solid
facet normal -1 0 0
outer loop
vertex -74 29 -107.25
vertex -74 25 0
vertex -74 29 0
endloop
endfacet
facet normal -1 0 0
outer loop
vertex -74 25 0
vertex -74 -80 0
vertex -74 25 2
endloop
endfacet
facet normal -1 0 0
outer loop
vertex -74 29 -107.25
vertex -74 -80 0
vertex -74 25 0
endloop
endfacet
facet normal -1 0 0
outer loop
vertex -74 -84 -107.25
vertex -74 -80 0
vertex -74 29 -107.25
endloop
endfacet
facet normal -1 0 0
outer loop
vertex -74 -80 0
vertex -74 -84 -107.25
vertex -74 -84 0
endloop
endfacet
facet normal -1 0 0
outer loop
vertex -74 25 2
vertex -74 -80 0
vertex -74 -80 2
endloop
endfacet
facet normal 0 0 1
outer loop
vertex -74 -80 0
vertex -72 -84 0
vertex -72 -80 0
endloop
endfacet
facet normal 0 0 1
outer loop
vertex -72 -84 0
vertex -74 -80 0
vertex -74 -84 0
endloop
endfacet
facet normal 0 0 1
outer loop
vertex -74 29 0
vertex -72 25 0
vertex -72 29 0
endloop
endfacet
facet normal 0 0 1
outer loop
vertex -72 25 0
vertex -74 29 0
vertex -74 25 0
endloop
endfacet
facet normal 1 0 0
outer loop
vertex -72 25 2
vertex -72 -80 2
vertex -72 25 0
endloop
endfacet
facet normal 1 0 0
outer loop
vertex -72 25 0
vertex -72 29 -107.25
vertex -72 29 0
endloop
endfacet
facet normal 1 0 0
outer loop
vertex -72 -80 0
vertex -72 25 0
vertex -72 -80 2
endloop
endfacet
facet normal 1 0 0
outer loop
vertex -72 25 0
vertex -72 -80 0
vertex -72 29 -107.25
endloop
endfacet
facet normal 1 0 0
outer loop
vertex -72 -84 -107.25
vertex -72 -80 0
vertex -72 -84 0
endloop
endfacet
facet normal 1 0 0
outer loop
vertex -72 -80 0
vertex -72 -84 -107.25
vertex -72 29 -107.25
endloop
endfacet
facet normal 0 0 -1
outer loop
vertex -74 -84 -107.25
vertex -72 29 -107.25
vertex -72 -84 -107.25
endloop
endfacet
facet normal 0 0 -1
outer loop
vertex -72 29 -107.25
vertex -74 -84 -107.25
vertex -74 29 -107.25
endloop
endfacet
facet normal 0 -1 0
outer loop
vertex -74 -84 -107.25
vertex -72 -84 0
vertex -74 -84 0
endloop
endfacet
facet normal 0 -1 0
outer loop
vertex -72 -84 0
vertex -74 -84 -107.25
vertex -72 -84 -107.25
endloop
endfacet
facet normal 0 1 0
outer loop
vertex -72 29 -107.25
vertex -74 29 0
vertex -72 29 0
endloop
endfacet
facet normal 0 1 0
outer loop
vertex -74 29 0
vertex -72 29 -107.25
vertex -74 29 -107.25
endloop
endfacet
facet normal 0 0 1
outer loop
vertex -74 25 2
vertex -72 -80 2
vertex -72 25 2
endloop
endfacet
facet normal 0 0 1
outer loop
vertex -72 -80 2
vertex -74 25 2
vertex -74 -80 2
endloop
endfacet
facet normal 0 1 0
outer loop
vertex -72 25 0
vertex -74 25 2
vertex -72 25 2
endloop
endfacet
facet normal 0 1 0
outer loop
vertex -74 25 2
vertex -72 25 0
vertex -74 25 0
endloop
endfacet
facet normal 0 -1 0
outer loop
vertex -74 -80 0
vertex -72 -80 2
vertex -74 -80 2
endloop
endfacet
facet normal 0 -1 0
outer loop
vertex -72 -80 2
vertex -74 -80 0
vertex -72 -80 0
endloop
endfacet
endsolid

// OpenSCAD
/*
  Seed imaging system case with experimental collector

  Starting point:
    A simple rectangular base plate for the vacuum/rocking seed imaging system.
*/

$fn = 48;

// Choose what OpenSCAD shows/exports.
part_to_show = "left_side"; // "assembly", "plate", "front", "back", "left_side", "right_side", "sides", "collector", "lower_frame", "bottom"

// Base plate dimensions.
plate_w = 210;      // mm
plate_h = 180;      // mm
plate_thick = 2;    // mm
corner_r = 2;       // mm, just enough to remove sharp corners
wall_slot_clearance = 0.3; // mm extra slot size for sliding wall parts into plate

// Cutout matching the outer tray footprint of the moving funnel adapter.
funnel_cutout_w = 124;       // mm, long side plus clearance for rotation
funnel_cutout_h = 87;        // mm, short side plus clearance for rotation
funnel_front_gap = 20;       // mm from front long edge of plate to cutout
funnel_cutout_r = 2;         // mm, slight radius to avoid sharp internal corners
funnel_cutout_y = -plate_h/2 + funnel_front_gap + funnel_cutout_h/2;

// Front wall for the vacuum adapter interface, hanging down from the top plate.
front_wall_offset_from_cutout = 12; // mm from front edge of cutout toward plate front
front_wall_extra_w = 10;            // mm extension beyond each cutout side
front_wall_w = funnel_cutout_w + 2 * front_wall_extra_w;
front_wall_h = 101.25;              // mm, bottom is 72 mm below front circle center
front_wall_thick = 2;               // mm
front_wall_y = funnel_cutout_y - funnel_cutout_h/2 - front_wall_offset_from_cutout - front_wall_thick;
back_wall_offset_from_cutout = 10;  // mm from back edge of cutout toward plate back
back_wall_y = funnel_cutout_y + funnel_cutout_h/2 + back_wall_offset_from_cutout;
side_wall_thick = front_wall_thick;
side_wall_y = front_wall_y;
side_wall_depth = back_wall_y + front_wall_thick - front_wall_y;

// Circular opening in the front wall for the static funnel-system spout.
static_spout_outer_d = 31.5;       // mm, current static male spout OD
front_wall_spout_clearance = 1;    // mm extra diameter clearance
front_wall_spout_cutout_d = static_spout_outer_d + front_wall_spout_clearance;
front_wall_spout_top_drop = 15;    // mm below top surface of plate
front_wall_spout_center_z = plate_thick - front_wall_spout_top_drop - front_wall_spout_cutout_d/2;
front_wall_tab_margin = 10;      // mm material around circular spout tab
front_wall_tab_x = -front_wall_spout_cutout_d/2 - front_wall_tab_margin;
front_wall_tab_w = front_wall_spout_cutout_d + 2 * front_wall_tab_margin;
front_back_wall_bottom_clearance = 10; // mm below circular cutout bottom
front_back_wall_bottom_z = front_wall_spout_center_z - front_wall_spout_cutout_d/2 - front_back_wall_bottom_clearance;
front_back_wall_h = -front_back_wall_bottom_z;

// Rectangular opening in the back wall, aligned with the spout opening height.
back_wall_rect_cutout_w = 40;   // mm, long horizontal edge
back_wall_rect_cutout_h = 20;   // mm, vertical edge
back_wall_rect_cutout_x_shift = -11; // mm, left shift from spout center
back_wall_notch_size = 7;       // mm square notch centered on right edge
back_wall_notch_overlap = 0.5;  // mm overlap to avoid a zero-width seam
back_wall_tab_margin = 10;      // mm material around motor cutout tab
back_wall_cutout_min_x = back_wall_rect_cutout_x_shift - back_wall_rect_cutout_w/2;
back_wall_cutout_max_x = back_wall_rect_cutout_x_shift + back_wall_rect_cutout_w/2 + back_wall_notch_size;
back_wall_tab_x = back_wall_cutout_min_x - back_wall_tab_margin;
back_wall_tab_w = back_wall_cutout_max_x - back_wall_cutout_min_x + 2 * back_wall_tab_margin;
back_wall_servo_pad_thick = 4;    // mm extra thickness behind servo mount area
back_wall_servo_pad_margin = 6;   // mm material around the motor rectangle cutout
// Experimental lower collector dimensions.
total_system_h = 190;              // mm, target total height from top of plate to floor
floor_z = plate_thick - total_system_h;
upper_wall_bottom_z = -front_wall_h;
collector_drop_h = upper_wall_bottom_z - floor_z;
collector_wall = 2;                // mm wall thickness for chute/outlet
collector_outlet_od = 30;          // mm outer diameter for seed packet interface
collector_outlet_id = collector_outlet_od - 2 * collector_wall;
collector_outlet_len = 24;         // mm, angled tube length; shorter leaves room for the funnel slope
collector_neck_overlap = 8;        // mm overlap into throat so the angled neck and funnel connect solidly
collector_outlet_angle = 135;      // degrees; cylinder axis points 45 degrees down toward the front
collector_floor_clearance = 35;    // mm from floor to lowest outside edge of outlet mouth
collector_outlet_end_z = floor_z + collector_floor_clearance + collector_outlet_od/2;
collector_outlet_start_z = collector_outlet_end_z - collector_outlet_len * cos(collector_outlet_angle);
collector_outlet_start_y = front_wall_y + 28;
collector_outlet_end_y = collector_outlet_start_y - collector_outlet_len * sin(collector_outlet_angle);
collector_top_margin = 3;          // mm inset from inside wall span
collector_post = 8;                // mm square lower frame corner posts
collector_base_rail_h = 8;         // mm height of bottom rails
collector_base_rail_thick = 6;     // mm thickness of bottom rails
collector_lip_h = 4;               // mm thick top lip tying collector mouth into lower posts
collector_lip_overlap_up = 1;      // mm overlap into upper walls for preview/alignment before adding slots
bottom_wall_notch_depth = 6;       // mm deep receiver notch for side walls in the bottom piece
side_wall_h = front_wall_h + bottom_wall_notch_depth; // mm side walls extend into bottom notches
side_wall_top_tab_inset = 4;      // mm shorter at each end to make a shoulder stop under the top plate
front_back_wall_top_tab_inset = 4; // mm shorter at each end for front/back top plate shoulder stops
tray_boundary_wall_thick = 6;     // mm, wider than 2 mm front/back walls for future notches
tray_boundary_wall_h = 6;         // mm small raised boundary at front/back tray edges
tray_boundary_wall_x_margin = 4;  // mm extra length beyond matching front/back wall pieces
tray_boundary_wall_side_inset = side_wall_thick/2 + collector_post/2; // mm keeps rails clear of side walls
front_back_diag_frame_w = 8;      // mm width of trapezoid-frame brace bands
front_back_diag_wall_overlap = 1; // mm overlap so brace merges cleanly into front/back wall
front_back_diag_inner_base_inset = 22; // mm larger values make the inner triangle less obtuse
front_back_diag_end_inset = 14;   // mm keeps brace feet shy of side-wall/funnel corners
front_back_diag_tab_w = 12;       // mm width of rectangular feet that seat in tray-wall notches
front_back_diag_tab_h = tray_boundary_wall_h; // mm foot height matching the tray wall height
front_back_diag_notch_clearance = wall_slot_clearance; // mm extra room around brace feet

// Makes a 2D rounded rectangle profile.
module rounded_rect_2d(w, h, r) {
  offset(r = r)
    square([w - 2*r, h - 2*r], center = true);
}

// Makes the main rectangular base plate with lightly rounded corners.
module base_plate() {
  linear_extrude(height = plate_thick)
    rounded_rect_2d(plate_w, plate_h, corner_r);
}

// Cuts the moving funnel adapter tray footprint through the plate. The long
// side of the cutout runs parallel to the long side of the plate.
module funnel_tray_cutout() {
  translate([0, funnel_cutout_y, -0.5])
    linear_extrude(height = plate_thick + 1)
      rounded_rect_2d(funnel_cutout_w, funnel_cutout_h, funnel_cutout_r);
}

// Cuts the round spout opening through the front wall.
module front_wall_spout_cutout() {
  translate([0, front_wall_y + front_wall_thick/2, front_wall_spout_center_z])
    rotate([90, 0, 0])
      cylinder(h = front_wall_thick + 1, d = front_wall_spout_cutout_d, center = true);
}


// Makes a trapezoid-shaped wall extension with a triangular center opening.
// The two lower rectangular feet seat into matching notches in the tray wall.
module front_back_trapezoid_brace_at(wall_x, wall_w, y, y_thick) {
  top_left = wall_x;
  top_right = wall_x + wall_w;
  foot_left_center = -front_wall_w/2 + front_back_diag_end_inset;
  foot_right_center = front_wall_w/2 - front_back_diag_end_inset;
  foot_left_outer = foot_left_center - front_back_diag_tab_w/2;
  foot_left_inner = foot_left_center + front_back_diag_tab_w/2;
  foot_right_inner = foot_right_center - front_back_diag_tab_w/2;
  foot_right_outer = foot_right_center + front_back_diag_tab_w/2;
  z_top = front_back_wall_bottom_z + front_back_diag_wall_overlap;
  z_bottom = upper_wall_bottom_z;
  z_foot_top = upper_wall_bottom_z + front_back_diag_tab_h;

  translate([0, y + y_thick, 0])
    rotate([90, 0, 0])
      linear_extrude(height = y_thick)
        polygon(points = [
          [top_left, z_top],
          [top_right, z_top],
          [foot_right_outer, z_foot_top],
          [foot_right_outer, z_bottom],
          [foot_left_outer, z_bottom],
          [foot_left_outer, z_foot_top]
        ]);
}
// Makes the front vertical wall below the plate.
module front_wall() {
  front_wall_top_tab_x = front_wall_tab_x + front_back_wall_top_tab_inset;
  front_wall_top_tab_w = front_wall_tab_w - 2 * front_back_wall_top_tab_inset;

  difference() {
    union() {
      translate([front_wall_tab_x, front_wall_y, front_back_wall_bottom_z])
        cube([front_wall_tab_w, front_wall_thick, front_back_wall_h], center = false);
      translate([front_wall_top_tab_x, front_wall_y, 0])
        cube([front_wall_top_tab_w, front_wall_thick, plate_thick], center = false);
      front_back_trapezoid_brace_at(front_wall_tab_x, front_wall_tab_w, front_wall_y, front_wall_thick);
    }
    front_wall_spout_cutout();
  }
}

// Cuts the rectangular opening through the back wall.
module back_wall_rect_cutout() {
  union() {
    translate([back_wall_rect_cutout_x_shift - back_wall_rect_cutout_w/2,
               back_wall_y - 0.5,
               front_wall_spout_center_z - back_wall_rect_cutout_h/2])
      cube([back_wall_rect_cutout_w, front_wall_thick + back_wall_servo_pad_thick + 1, back_wall_rect_cutout_h], center = false);

    translate([back_wall_rect_cutout_x_shift + back_wall_rect_cutout_w/2 - back_wall_notch_overlap,
               back_wall_y - 0.5,
               front_wall_spout_center_z - back_wall_notch_size/2])
      cube([back_wall_notch_size + back_wall_notch_overlap, front_wall_thick + back_wall_servo_pad_thick + 1, back_wall_notch_size], center = false);
  }
}


// Adds localized thickness behind the motor cutout for servo mounting screws.
module back_wall_servo_mount_pad() {
  pad_x = back_wall_tab_x;
  pad_w = back_wall_tab_w;
  pad_z = front_wall_spout_center_z - back_wall_rect_cutout_h/2 - back_wall_servo_pad_margin;
  pad_h = back_wall_rect_cutout_h + 2 * back_wall_servo_pad_margin;

  translate([pad_x, back_wall_y + front_wall_thick, pad_z])
    cube([pad_w, back_wall_servo_pad_thick, pad_h], center = false);
}
// Makes the back vertical wall below the plate, mirrored from the front wall.
module back_wall() {
  back_wall_top_tab_x = back_wall_tab_x + front_back_wall_top_tab_inset;
  back_wall_top_tab_w = back_wall_tab_w - 2 * front_back_wall_top_tab_inset;

  difference() {
    union() {
      translate([back_wall_tab_x, back_wall_y, front_back_wall_bottom_z])
        cube([back_wall_tab_w, front_wall_thick, front_back_wall_h], center = false);
      translate([back_wall_top_tab_x, back_wall_y, 0])
        cube([back_wall_top_tab_w, front_wall_thick, plate_thick], center = false);
      front_back_trapezoid_brace_at(back_wall_tab_x, back_wall_tab_w, back_wall_y, front_wall_thick);
      back_wall_servo_mount_pad();
    }
    back_wall_rect_cutout();
  }
}

// Makes side walls that connect the front and back walls while preserving
// the 144 mm interior span between their inside faces.
module side_wall(side) {
  x = side < 0 ? -front_wall_w/2 - side_wall_thick : front_wall_w/2;
  tab_y = side_wall_y + side_wall_top_tab_inset;
  tab_depth = side_wall_depth - 2 * side_wall_top_tab_inset;

  union() {
    translate([x, side_wall_y, -side_wall_h])
      cube([side_wall_thick, side_wall_depth, side_wall_h], center = false);

    translate([x, tab_y, 0])
      cube([side_wall_thick, tab_depth, plate_thick], center = false);
  }
}

module side_walls() {
  side_wall(-1);
  side_wall(1);
}
// Makes a very thin rectangular face used as the open mouth of the collector chute.
module collector_top_patch(w, d, z) {
  translate([-w/2, side_wall_y + collector_top_margin, z])
    cube([w, d, 0.4], center = false);
}

// Makes a very thin circular face used as the lower throat of the collector chute.
module collector_circle_patch(d, y, z) {
  translate([0, y, z])
    cylinder(h = 0.4, d = d, center = true);
}


// Adds a broad lip at the top of the collector so the funnel clearly rests on the lower posts
// and closes the gap to the original side wall pieces.
module collector_top_lip_outer() {
  lip_x = -front_wall_w/2 - side_wall_thick/2 - collector_post/2;
  lip_y = side_wall_y;
  lip_w = front_wall_w + side_wall_thick + collector_post;
  lip_d = side_wall_depth;

  translate([lip_x, lip_y, upper_wall_bottom_z - collector_lip_h])
    cube([lip_w, lip_d, collector_lip_h + collector_lip_overlap_up], center = false);
}

// Keeps the collector lip open so seeds can drop into the funnel.
module collector_top_lip_void() {
  opening_w = front_wall_w - 2 * collector_wall;
  opening_d = side_wall_depth - 2 * collector_wall;

  translate([-opening_w/2,
             side_wall_y + collector_wall,
             upper_wall_bottom_z - collector_lip_h - 0.5])
    cube([opening_w, opening_d, collector_lip_h + 3], center = false);
}
// Outer solid rectangular-to-round collector funnel.
module collector_chute_outer() {
  top_w_outer = front_wall_w - 2 * collector_top_margin;
  top_d_outer = side_wall_depth - 2 * collector_top_margin;

  hull() {
    collector_top_patch(top_w_outer, top_d_outer, upper_wall_bottom_z - 0.4);
    collector_circle_patch(collector_outlet_od + 2 * collector_wall, collector_outlet_start_y, collector_outlet_start_z);
  }
}

// Continuous inner void for the rectangular-to-round collector funnel.
module collector_chute_void() {
  top_w_outer = front_wall_w - 2 * collector_top_margin;
  top_d_outer = side_wall_depth - 2 * collector_top_margin;
  top_w_inner = top_w_outer - 2 * collector_wall;
  top_d_inner = top_d_outer - 2 * collector_wall;

  hull() {
    collector_top_patch(top_w_inner, top_d_inner, upper_wall_bottom_z + 1.5);
    collector_circle_patch(collector_outlet_id, collector_outlet_start_y, collector_outlet_start_z);
  }
}


// Adds material only behind the circular throat to close the rear-side gap.
// The shared inner void is subtracted later, so this reinforces the wall without blocking flow.
module collector_rear_throat_seal_outer() {
  seal_d = collector_outlet_od + 2 * collector_wall;
  seal_h = 8;

  intersection() {
    translate([0, collector_outlet_start_y, collector_outlet_start_z - seal_h/2])
      cylinder(h = seal_h, d = seal_d, center = false);

    translate([-seal_d/2,
               collector_outlet_start_y,
               collector_outlet_start_z - seal_h/2])
      cube([seal_d, seal_d/2 + collector_wall, seal_h], center = false);
  }
}
// Outer solid for the tilted outlet neck that the seed packet can wrap around.
module collector_outlet_neck_outer() {
  translate([0,
             collector_outlet_start_y + collector_neck_overlap * sin(collector_outlet_angle),
             collector_outlet_start_z - collector_neck_overlap * cos(collector_outlet_angle)])
    rotate([collector_outlet_angle, 0, 0])
      cylinder(h = collector_outlet_len + collector_neck_overlap, d = collector_outlet_od, center = false);
}

// Continuous inner void through the tilted outlet neck.
module collector_outlet_neck_void() {
  translate([0,
             collector_outlet_start_y + collector_neck_overlap * sin(collector_outlet_angle),
             collector_outlet_start_z - collector_neck_overlap * cos(collector_outlet_angle)])
    rotate([collector_outlet_angle, 0, 0])
      translate([0, 0, -0.5])
        cylinder(h = collector_outlet_len + collector_neck_overlap + 1, d = collector_outlet_id, center = false);
}


// Adds small front/back boundary walls on the collector tray lip.
// These are wider than the front/back wall thickness so future receiver notches
// can leave material on both sides of the descending wall extensions.
module collector_tray_boundary_walls_outer() {
  edge_x = -front_wall_w/2 - side_wall_thick/2 - collector_post/2 + tray_boundary_wall_side_inset;
  edge_w = front_wall_w + side_wall_thick + collector_post - 2 * tray_boundary_wall_side_inset;
  z0 = upper_wall_bottom_z;

  translate([edge_x,
             front_wall_y + front_wall_thick/2 - tray_boundary_wall_thick/2,
             z0])
    cube([edge_w, tray_boundary_wall_thick, tray_boundary_wall_h], center = false);

  translate([edge_x,
             back_wall_y + front_wall_thick/2 - tray_boundary_wall_thick/2,
             z0])
    cube([edge_w, tray_boundary_wall_thick, tray_boundary_wall_h], center = false);
}
// Makes the internal seed collector as one continuous hollow funnel and angled neck.
module collector_funnel() {
  difference() {
    union() {
      collector_top_lip_outer();
      collector_tray_boundary_walls_outer();
      collector_chute_outer();
      collector_rear_throat_seal_outer();
      collector_outlet_neck_outer();
    }

    union() {
      collector_chute_void();
      collector_outlet_neck_void();
    }
  }
}

// Adds a light lower frame so the final assembly reaches 190 mm without
// relying on the funnel shell as the only support.
module lower_frame() {
  x_left = -front_wall_w/2 - side_wall_thick/2 - collector_post/2;
  x_right = front_wall_w/2 + side_wall_thick/2 - collector_post/2;
  y_front = side_wall_y;
  y_back = side_wall_y + side_wall_depth - collector_post;

  union() {
    for (x = [x_left, x_right])
      for (y = [y_front, y_back])
        translate([x, y, floor_z])
          cube([collector_post, collector_post, collector_drop_h], center = false);

    translate([x_left, y_back, floor_z])
      cube([x_right + collector_post - x_left, collector_base_rail_thick, collector_base_rail_h], center = false);

    for (x = [x_left, x_right])
      translate([x, y_front, floor_z])
        cube([collector_post, side_wall_depth, collector_base_rail_h], center = false);
  }
}



// Cuts receiver notches into the top of the bottom module for the two side walls.
module bottom_side_wall_notches() {
  c = wall_slot_clearance;
  z0 = upper_wall_bottom_z - bottom_wall_notch_depth;
  h = bottom_wall_notch_depth + collector_lip_overlap_up + 1;

  translate([-front_wall_w/2 - side_wall_thick - c/2,
             side_wall_y - c/2,
             z0])
    cube([side_wall_thick + c, side_wall_depth + c, h], center = false);

  translate([front_wall_w/2 - c/2,
             side_wall_y - c/2,
             z0])
    cube([side_wall_thick + c, side_wall_depth + c, h], center = false);
}

// Cuts one long receiver groove in each tray rail for the front/back brace base.
module front_back_brace_foot_notches() {
  c = front_back_diag_notch_clearance;
  groove_w = front_wall_w - 2 * front_back_diag_end_inset + front_back_diag_tab_w + c;
  groove_y = front_wall_thick + c;
  groove_h = front_back_diag_tab_h + c;
  wall_ys = [front_wall_y, back_wall_y];

  for (y = wall_ys)
    translate([-groove_w/2,
               y - c/2,
               upper_wall_bottom_z - c/2])
      cube([groove_w, groove_y, groove_h], center = false);
}
// Makes the new lower modular piece: collector funnel plus its support frame.
// The original side walls remain separate modules so we can add slide-fit features next.
module bottom_piece() {
  difference() {
    union() {
      collector_funnel();
      lower_frame();
    }
    bottom_side_wall_notches();
    front_back_brace_foot_notches();
  }
}
// Cuts slots through the top plate matching the top footprint of each wall/tab.
module wall_slot_cutouts() {
  c = wall_slot_clearance;

  translate([front_wall_tab_x + front_back_wall_top_tab_inset - c/2, front_wall_y - c/2, -0.5])
    cube([front_wall_tab_w - 2 * front_back_wall_top_tab_inset + c, front_wall_thick + c, plate_thick + 1], center = false);

  translate([back_wall_tab_x + front_back_wall_top_tab_inset - c/2, back_wall_y - c/2, -0.5])
    cube([back_wall_tab_w - 2 * front_back_wall_top_tab_inset + c, front_wall_thick + c, plate_thick + 1], center = false);

  translate([-front_wall_w/2 - side_wall_thick - c/2,
             side_wall_y + side_wall_top_tab_inset - c/2,
             -0.5])
    cube([side_wall_thick + c,
          side_wall_depth - 2 * side_wall_top_tab_inset + c,
          plate_thick + 1], center = false);

  translate([front_wall_w/2 - c/2,
             side_wall_y + side_wall_top_tab_inset - c/2,
             -0.5])
    cube([side_wall_thick + c,
          side_wall_depth - 2 * side_wall_top_tab_inset + c,
          plate_thick + 1], center = false);
}
module case_plate() {
  difference() {
    base_plate();
    funnel_tray_cutout();
    wall_slot_cutouts();
  }
}

module case_assembly() {
  union() {
    case_plate();
    front_wall();
    back_wall();
    side_walls();
    bottom_piece();
  }
}

if (part_to_show == "plate") {
  case_plate();
} else if (part_to_show == "front") {
  front_wall();
} else if (part_to_show == "back") {
  back_wall();
} else if (part_to_show == "left_side") {
  side_wall(-1);
} else if (part_to_show == "right_side") {
  side_wall(1);
} else if (part_to_show == "sides") {
  side_walls();
} else if (part_to_show == "collector") {
  collector_funnel();
} else if (part_to_show == "lower_frame") {
  lower_frame();
} else if (part_to_show == "bottom") {
  bottom_piece();
} else {
  case_assembly();
}
